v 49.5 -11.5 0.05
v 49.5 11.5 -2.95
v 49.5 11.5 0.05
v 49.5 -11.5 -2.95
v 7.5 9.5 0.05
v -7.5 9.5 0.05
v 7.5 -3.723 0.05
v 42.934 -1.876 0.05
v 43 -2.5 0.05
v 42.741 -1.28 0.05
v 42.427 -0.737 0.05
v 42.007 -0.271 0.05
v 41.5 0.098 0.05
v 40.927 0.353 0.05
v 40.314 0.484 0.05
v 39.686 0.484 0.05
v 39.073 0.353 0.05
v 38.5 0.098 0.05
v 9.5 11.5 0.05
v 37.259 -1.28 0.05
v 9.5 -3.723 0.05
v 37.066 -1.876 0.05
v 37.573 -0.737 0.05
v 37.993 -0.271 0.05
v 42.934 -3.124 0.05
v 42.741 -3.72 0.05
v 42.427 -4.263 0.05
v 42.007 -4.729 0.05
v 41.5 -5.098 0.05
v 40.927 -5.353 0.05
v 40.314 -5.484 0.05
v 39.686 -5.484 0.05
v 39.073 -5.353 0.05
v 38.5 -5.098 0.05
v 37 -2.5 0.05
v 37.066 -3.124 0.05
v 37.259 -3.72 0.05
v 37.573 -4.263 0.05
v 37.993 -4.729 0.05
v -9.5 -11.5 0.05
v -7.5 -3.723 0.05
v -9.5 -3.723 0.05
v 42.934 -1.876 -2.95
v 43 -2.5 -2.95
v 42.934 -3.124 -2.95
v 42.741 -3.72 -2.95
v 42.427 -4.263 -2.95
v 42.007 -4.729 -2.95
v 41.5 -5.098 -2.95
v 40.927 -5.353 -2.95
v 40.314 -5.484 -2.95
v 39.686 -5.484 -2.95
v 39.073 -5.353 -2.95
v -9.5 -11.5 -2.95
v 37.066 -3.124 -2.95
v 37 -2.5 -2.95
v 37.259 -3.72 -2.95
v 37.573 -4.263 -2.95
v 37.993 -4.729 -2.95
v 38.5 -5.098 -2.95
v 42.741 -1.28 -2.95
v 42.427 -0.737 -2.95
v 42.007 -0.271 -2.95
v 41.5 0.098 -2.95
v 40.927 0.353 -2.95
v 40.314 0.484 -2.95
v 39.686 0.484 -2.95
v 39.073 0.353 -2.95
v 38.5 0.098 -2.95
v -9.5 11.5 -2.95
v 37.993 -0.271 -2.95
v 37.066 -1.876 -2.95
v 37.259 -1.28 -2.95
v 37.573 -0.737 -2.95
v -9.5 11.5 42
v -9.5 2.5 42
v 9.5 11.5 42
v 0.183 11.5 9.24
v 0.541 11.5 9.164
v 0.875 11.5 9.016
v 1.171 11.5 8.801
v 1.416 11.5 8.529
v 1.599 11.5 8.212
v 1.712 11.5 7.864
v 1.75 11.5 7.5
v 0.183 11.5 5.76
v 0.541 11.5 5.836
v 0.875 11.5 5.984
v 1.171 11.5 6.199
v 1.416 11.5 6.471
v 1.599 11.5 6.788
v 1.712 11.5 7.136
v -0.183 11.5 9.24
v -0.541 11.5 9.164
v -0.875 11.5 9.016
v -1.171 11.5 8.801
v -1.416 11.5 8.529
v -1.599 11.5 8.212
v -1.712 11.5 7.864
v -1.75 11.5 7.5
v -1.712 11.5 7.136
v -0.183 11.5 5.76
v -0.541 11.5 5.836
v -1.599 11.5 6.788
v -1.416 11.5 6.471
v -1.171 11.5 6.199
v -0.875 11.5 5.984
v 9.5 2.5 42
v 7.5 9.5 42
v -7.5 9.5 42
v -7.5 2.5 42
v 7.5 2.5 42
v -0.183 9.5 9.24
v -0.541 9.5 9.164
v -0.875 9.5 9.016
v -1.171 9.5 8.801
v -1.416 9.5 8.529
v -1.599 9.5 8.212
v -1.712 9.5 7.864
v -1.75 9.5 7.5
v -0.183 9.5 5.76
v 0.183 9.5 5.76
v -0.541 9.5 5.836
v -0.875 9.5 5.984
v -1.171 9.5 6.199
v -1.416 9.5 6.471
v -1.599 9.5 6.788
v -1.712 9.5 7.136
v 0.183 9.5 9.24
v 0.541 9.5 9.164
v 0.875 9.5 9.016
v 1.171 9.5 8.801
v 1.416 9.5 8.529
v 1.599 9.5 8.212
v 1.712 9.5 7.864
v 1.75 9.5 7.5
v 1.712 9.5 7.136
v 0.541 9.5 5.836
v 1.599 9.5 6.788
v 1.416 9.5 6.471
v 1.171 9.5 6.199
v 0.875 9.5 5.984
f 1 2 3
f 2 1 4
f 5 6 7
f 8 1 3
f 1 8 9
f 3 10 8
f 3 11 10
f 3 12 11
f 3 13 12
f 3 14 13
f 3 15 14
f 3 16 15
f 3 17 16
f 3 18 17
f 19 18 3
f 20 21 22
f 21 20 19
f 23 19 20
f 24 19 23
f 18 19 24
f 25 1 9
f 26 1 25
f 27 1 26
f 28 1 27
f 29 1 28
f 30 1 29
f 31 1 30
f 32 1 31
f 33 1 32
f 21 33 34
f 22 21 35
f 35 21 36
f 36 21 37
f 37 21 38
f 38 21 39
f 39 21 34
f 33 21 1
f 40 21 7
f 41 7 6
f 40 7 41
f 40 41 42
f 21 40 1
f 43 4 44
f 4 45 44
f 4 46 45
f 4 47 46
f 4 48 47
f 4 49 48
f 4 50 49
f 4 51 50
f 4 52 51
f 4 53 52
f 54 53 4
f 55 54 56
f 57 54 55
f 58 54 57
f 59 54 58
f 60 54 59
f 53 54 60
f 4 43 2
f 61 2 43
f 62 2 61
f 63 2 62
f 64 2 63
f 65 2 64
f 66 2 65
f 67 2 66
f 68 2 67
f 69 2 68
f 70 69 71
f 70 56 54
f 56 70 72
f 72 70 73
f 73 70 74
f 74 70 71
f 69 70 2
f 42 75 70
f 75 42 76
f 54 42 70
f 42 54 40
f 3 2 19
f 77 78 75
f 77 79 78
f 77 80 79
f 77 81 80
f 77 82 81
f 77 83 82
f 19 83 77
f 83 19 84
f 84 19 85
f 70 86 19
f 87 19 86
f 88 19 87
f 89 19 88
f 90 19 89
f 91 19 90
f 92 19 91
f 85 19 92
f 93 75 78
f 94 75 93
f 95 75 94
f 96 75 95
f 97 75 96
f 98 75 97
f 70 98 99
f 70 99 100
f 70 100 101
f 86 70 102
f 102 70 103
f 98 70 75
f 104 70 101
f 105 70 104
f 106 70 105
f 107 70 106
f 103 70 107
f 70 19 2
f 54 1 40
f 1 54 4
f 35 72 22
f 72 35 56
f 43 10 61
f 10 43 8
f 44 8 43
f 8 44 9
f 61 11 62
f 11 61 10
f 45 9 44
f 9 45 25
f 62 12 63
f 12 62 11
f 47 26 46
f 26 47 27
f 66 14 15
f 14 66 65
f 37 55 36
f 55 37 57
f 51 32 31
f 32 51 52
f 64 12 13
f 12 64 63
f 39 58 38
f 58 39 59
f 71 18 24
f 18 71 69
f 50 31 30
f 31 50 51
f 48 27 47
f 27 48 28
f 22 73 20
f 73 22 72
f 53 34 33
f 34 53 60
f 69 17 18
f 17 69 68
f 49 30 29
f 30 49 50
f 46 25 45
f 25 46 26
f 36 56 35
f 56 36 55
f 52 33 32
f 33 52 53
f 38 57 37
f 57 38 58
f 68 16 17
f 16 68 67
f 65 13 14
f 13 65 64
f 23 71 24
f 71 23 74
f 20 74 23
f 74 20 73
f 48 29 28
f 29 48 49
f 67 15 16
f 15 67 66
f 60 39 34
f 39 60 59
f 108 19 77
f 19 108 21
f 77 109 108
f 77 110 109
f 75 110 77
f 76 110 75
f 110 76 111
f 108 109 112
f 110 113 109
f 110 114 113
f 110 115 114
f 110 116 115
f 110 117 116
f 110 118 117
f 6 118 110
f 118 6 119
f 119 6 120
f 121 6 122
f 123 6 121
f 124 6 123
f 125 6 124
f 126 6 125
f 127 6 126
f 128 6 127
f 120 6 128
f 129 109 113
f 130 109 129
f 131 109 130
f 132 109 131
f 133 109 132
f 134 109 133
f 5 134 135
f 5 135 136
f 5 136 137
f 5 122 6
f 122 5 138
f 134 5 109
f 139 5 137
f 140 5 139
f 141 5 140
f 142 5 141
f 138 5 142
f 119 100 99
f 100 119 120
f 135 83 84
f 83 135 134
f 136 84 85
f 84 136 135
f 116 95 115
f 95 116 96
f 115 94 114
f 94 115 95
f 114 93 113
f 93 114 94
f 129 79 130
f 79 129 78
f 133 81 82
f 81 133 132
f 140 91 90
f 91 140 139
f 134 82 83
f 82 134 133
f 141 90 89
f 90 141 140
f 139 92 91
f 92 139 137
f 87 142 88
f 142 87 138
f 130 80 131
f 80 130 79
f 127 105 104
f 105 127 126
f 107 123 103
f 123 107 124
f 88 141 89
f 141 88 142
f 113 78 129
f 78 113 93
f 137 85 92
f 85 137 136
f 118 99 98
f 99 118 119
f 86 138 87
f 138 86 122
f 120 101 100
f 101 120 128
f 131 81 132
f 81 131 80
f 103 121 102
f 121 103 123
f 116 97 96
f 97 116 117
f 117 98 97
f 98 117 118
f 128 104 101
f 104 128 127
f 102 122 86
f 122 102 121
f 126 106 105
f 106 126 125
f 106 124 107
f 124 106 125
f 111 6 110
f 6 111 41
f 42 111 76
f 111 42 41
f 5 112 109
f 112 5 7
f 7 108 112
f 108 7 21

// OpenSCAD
// Holder for sensor / tachometer


// Width of the sensor
sensor_width = 14;

// Space between sensor and supports
sensor_space = 0.5;

// The support is the support for the sensor

// Width of the support besides the sensor
support_width = 2;

// Height of the support
support_height = 42;

// Depth 
support_depth = 2;

// Module mount offset and diameter
module_mount_diameter = 3.25 + 0.25; // Add 0.25 after first print.
module_mount_offset = 6.5 + 1; // Add 1 after first print
module_mount_offset_y = -2.5;
module_top_support_depth = 7;

// Base is what is attached to the ventilator pyramid stub
base_width = 23;
base_thickness = 3;

// the distance from the center of the axel to the mounting point
center_mounting_distance = 40;

// And the diameter of the mounting point
mounting_diameter = 6;

pad = 0.05;


// Calculated
support_full_width = support_width * 2 + sensor_width + 2 * sensor_space;
base_length = support_full_width + center_mounting_distance;
mounting_radius = mounting_diameter / 2.0;
module_mount_radius = module_mount_diameter / 2.0;

// Nice circles
$fn=30;

// Create the base. Leave at X/Z position for the support, centered on Y
module base() {
    translate([base_length-support_full_width,0,-base_thickness/2.0+pad]) {
        difference() {
            // Mount is mirror of center of sensor
            translate([-base_length/2.0 + support_full_width/2.0, 0,0]) {
                cube([base_length, base_width, base_thickness], center = true);
            }
            translate([0, module_mount_offset_y,0]) {
                cylinder(r = mounting_radius, h = 2*base_thickness, center=true);
                }
        }
    }
}

module side_support() {
    rotate([90,0,270]) {
        linear_extrude(support_width) {
            polygon(points=[[0,0],[base_width*0.66-support_depth+pad,0],[module_top_support_depth,support_height],[0,support_height]], paths=[[0,1,2,3]]);
        }
    }
}

module support() {
    //Back support
    difference() {
        translate([0,base_width/2.0-support_depth/2.0,support_height/2.0]) {
            cube([support_full_width, support_depth, support_height], center=true);
        }
        translate([0,0,module_mount_offset]) {
            rotate([90,0,0]) {
                cylinder(r = module_mount_radius, h = 100*support_depth, center = true);
            }
        }
    }
    
    // Left side support.
    translate([-sensor_width/2.0-sensor_space,base_width/2.0-support_depth,0]) {
        side_support();
    }
    
    // right side support.
    translate([+sensor_width/2.0+sensor_space+support_width,base_width/2.0-support_depth,0]) {
        side_support();
    }
}


base();
support();
